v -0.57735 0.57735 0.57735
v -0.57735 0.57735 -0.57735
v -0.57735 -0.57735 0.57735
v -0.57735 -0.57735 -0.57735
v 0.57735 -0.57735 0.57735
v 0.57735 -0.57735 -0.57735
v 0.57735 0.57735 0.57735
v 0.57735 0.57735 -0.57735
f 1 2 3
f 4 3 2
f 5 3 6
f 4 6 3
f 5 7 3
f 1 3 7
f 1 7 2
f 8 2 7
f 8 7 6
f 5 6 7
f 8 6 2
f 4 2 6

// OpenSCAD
polyhedron( points = [[-0.577350269200426, -0.577350269206906, 0.577350269161545], [-0.577350269148584, 0.577350269232824, 0.577350269161545], [0.577350269187469, 0.577350269129144, 0.577350269161545], [0.577350269135623, -0.577350269206906, 0.577350269161545], [-0.577350269148584, -0.577350269155064, -0.577350269174504], [-0.577350269096742, 0.57735026928467, -0.57735026907082], [0.577350269135623, 0.577350269077301, -0.577350269174504], [0.577350269135623, -0.577350269155064, -0.577350269226351]], faces = [[0, 1, 5, 4], [0, 4, 7, 3], [0, 3, 2, 1], [1, 2, 6, 5], [2, 3, 7, 6], [4, 5, 6, 7]]);
